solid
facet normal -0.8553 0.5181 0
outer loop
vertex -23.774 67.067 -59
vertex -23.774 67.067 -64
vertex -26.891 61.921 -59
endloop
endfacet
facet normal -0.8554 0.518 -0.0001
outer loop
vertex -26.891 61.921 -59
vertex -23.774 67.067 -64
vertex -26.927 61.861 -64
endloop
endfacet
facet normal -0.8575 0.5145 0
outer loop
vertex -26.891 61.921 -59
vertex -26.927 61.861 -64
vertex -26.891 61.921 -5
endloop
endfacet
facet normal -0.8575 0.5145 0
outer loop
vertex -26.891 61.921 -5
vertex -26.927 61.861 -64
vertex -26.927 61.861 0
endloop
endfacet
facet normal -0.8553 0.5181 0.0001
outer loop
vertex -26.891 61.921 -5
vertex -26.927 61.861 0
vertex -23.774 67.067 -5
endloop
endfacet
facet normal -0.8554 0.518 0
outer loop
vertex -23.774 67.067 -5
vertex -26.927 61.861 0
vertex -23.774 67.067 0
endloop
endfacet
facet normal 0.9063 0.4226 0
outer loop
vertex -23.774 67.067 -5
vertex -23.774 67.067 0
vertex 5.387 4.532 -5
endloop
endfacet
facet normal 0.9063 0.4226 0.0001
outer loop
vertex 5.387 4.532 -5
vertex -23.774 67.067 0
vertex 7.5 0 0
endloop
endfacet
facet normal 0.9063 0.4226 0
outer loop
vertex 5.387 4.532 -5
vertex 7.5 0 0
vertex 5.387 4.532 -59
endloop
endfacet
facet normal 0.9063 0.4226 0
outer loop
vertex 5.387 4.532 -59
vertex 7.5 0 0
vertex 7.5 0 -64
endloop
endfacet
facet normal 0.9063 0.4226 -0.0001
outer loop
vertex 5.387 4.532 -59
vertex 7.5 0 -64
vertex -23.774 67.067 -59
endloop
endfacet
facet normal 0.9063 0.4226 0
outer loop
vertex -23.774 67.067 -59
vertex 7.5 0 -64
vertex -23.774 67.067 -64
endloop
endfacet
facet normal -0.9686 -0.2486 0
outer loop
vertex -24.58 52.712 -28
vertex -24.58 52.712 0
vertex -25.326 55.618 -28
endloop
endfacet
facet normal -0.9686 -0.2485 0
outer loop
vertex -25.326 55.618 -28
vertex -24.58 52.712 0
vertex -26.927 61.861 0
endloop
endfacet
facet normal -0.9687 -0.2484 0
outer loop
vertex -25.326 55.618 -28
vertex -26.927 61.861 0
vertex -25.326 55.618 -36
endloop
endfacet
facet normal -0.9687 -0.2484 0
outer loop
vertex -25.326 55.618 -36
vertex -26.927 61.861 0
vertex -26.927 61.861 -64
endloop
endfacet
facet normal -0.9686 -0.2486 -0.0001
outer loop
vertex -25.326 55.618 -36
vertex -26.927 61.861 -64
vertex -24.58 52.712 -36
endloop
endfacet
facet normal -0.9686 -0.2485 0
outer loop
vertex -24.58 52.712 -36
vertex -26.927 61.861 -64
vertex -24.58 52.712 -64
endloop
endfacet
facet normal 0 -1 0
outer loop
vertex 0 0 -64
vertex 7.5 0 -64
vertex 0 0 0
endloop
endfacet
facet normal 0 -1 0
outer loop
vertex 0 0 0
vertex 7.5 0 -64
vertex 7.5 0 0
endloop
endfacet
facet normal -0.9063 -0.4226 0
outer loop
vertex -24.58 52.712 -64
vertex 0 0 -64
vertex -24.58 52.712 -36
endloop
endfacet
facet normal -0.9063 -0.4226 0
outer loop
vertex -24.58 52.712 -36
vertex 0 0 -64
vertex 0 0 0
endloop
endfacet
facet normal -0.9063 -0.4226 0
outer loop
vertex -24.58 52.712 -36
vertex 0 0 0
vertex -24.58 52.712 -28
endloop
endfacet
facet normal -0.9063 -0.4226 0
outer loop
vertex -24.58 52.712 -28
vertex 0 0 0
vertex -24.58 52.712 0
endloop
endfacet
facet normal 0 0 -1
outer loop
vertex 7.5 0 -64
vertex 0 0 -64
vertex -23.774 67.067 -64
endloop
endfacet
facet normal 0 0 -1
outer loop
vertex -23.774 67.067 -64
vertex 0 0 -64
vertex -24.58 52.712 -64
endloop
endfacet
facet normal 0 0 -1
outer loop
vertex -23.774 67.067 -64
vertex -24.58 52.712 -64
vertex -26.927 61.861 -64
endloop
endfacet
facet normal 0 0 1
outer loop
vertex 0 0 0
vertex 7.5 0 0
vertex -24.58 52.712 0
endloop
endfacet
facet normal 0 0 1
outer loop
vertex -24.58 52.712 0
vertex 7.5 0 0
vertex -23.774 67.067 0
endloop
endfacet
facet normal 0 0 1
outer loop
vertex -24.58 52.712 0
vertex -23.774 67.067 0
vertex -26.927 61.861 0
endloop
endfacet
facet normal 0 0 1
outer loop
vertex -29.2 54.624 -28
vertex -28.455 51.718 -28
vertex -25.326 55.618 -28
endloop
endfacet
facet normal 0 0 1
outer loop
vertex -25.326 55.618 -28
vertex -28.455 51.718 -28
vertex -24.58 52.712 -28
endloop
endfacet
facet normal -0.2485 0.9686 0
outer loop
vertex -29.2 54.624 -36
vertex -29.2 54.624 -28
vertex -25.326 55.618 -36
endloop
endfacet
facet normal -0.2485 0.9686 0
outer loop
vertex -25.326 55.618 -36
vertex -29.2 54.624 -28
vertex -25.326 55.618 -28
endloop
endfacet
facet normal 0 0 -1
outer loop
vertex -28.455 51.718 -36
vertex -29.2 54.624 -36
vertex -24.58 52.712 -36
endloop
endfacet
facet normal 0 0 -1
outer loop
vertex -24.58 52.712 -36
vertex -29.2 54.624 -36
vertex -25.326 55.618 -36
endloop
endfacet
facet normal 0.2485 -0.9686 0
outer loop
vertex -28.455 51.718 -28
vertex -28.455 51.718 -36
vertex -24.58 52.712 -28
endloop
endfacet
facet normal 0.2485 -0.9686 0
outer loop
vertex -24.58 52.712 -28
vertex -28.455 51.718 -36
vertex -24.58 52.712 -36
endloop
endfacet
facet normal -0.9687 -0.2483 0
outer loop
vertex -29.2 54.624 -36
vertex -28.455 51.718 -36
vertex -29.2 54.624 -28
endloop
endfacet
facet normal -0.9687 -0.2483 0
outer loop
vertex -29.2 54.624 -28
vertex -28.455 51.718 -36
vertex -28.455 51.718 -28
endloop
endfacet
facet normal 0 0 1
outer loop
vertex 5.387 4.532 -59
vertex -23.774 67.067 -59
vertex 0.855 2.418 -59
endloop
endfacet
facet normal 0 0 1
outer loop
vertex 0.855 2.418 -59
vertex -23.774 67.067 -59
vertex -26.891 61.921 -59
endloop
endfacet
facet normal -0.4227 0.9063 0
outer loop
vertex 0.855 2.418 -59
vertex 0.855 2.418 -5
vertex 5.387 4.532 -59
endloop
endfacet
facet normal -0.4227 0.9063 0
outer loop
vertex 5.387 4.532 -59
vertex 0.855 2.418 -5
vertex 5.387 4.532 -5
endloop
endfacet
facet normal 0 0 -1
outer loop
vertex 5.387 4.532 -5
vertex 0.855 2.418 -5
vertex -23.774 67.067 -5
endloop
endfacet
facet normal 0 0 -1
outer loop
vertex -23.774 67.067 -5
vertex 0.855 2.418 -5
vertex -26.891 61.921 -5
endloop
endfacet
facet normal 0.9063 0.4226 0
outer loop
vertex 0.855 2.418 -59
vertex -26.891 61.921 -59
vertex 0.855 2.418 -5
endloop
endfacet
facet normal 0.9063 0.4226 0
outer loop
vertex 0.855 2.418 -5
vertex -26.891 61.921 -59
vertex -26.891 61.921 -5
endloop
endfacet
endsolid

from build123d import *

# Parameters (mm, degrees)
BOSS_EXTRUDE1_DEPTH = 64
BOSS_EXTRUDE2_DEPTH = 4
SKETCH4_W           = 54
SKETCH4_H           = 69
CUT_EXTRUDE1_DEPTH  = 5


with BuildPart() as part:
    # Sketch1 → Boss-Extrude1 (new body)
    with BuildSketch(Plane.XY):
        Polygon((0, 0), (7.5, 0), (-23.773751369, 67.066776241), (-26.927291044, 61.861401656), (-24.579993125, 52.711965363), align=None)
    extrude(amount=-BOSS_EXTRUDE1_DEPTH)

    # Sketch3 → Boss-Extrude2 (add)
    with BuildSketch(Plane(origin=(-10.373887242, -2.661432153, 0), x_dir=(0, 0, 1), z_dir=(-0.9686310353512481, -0.24850335481511932, 0))):
        Polygon((-36, 57.166656338), (-32, 57.166656338), (-28, 57.166656338), (-28, 60.166656338), (-36, 60.166656338), align=None)
    extrude(amount=BOSS_EXTRUDE2_DEPTH)

    # Sketch4 → Cut-Extrude1 (cut)
    with BuildSketch(Plane(origin=(6.160453536, 2.872666662, 0), x_dir=(0, 0, -1), z_dir=(0.9063077870366478, 0.4226182617407043, 0))):
        with Locations((32, 36.330363037)):
            Rectangle(SKETCH4_W, SKETCH4_H)
    extrude(amount=-CUT_EXTRUDE1_DEPTH, mode=Mode.SUBTRACT)


solid = part.part
